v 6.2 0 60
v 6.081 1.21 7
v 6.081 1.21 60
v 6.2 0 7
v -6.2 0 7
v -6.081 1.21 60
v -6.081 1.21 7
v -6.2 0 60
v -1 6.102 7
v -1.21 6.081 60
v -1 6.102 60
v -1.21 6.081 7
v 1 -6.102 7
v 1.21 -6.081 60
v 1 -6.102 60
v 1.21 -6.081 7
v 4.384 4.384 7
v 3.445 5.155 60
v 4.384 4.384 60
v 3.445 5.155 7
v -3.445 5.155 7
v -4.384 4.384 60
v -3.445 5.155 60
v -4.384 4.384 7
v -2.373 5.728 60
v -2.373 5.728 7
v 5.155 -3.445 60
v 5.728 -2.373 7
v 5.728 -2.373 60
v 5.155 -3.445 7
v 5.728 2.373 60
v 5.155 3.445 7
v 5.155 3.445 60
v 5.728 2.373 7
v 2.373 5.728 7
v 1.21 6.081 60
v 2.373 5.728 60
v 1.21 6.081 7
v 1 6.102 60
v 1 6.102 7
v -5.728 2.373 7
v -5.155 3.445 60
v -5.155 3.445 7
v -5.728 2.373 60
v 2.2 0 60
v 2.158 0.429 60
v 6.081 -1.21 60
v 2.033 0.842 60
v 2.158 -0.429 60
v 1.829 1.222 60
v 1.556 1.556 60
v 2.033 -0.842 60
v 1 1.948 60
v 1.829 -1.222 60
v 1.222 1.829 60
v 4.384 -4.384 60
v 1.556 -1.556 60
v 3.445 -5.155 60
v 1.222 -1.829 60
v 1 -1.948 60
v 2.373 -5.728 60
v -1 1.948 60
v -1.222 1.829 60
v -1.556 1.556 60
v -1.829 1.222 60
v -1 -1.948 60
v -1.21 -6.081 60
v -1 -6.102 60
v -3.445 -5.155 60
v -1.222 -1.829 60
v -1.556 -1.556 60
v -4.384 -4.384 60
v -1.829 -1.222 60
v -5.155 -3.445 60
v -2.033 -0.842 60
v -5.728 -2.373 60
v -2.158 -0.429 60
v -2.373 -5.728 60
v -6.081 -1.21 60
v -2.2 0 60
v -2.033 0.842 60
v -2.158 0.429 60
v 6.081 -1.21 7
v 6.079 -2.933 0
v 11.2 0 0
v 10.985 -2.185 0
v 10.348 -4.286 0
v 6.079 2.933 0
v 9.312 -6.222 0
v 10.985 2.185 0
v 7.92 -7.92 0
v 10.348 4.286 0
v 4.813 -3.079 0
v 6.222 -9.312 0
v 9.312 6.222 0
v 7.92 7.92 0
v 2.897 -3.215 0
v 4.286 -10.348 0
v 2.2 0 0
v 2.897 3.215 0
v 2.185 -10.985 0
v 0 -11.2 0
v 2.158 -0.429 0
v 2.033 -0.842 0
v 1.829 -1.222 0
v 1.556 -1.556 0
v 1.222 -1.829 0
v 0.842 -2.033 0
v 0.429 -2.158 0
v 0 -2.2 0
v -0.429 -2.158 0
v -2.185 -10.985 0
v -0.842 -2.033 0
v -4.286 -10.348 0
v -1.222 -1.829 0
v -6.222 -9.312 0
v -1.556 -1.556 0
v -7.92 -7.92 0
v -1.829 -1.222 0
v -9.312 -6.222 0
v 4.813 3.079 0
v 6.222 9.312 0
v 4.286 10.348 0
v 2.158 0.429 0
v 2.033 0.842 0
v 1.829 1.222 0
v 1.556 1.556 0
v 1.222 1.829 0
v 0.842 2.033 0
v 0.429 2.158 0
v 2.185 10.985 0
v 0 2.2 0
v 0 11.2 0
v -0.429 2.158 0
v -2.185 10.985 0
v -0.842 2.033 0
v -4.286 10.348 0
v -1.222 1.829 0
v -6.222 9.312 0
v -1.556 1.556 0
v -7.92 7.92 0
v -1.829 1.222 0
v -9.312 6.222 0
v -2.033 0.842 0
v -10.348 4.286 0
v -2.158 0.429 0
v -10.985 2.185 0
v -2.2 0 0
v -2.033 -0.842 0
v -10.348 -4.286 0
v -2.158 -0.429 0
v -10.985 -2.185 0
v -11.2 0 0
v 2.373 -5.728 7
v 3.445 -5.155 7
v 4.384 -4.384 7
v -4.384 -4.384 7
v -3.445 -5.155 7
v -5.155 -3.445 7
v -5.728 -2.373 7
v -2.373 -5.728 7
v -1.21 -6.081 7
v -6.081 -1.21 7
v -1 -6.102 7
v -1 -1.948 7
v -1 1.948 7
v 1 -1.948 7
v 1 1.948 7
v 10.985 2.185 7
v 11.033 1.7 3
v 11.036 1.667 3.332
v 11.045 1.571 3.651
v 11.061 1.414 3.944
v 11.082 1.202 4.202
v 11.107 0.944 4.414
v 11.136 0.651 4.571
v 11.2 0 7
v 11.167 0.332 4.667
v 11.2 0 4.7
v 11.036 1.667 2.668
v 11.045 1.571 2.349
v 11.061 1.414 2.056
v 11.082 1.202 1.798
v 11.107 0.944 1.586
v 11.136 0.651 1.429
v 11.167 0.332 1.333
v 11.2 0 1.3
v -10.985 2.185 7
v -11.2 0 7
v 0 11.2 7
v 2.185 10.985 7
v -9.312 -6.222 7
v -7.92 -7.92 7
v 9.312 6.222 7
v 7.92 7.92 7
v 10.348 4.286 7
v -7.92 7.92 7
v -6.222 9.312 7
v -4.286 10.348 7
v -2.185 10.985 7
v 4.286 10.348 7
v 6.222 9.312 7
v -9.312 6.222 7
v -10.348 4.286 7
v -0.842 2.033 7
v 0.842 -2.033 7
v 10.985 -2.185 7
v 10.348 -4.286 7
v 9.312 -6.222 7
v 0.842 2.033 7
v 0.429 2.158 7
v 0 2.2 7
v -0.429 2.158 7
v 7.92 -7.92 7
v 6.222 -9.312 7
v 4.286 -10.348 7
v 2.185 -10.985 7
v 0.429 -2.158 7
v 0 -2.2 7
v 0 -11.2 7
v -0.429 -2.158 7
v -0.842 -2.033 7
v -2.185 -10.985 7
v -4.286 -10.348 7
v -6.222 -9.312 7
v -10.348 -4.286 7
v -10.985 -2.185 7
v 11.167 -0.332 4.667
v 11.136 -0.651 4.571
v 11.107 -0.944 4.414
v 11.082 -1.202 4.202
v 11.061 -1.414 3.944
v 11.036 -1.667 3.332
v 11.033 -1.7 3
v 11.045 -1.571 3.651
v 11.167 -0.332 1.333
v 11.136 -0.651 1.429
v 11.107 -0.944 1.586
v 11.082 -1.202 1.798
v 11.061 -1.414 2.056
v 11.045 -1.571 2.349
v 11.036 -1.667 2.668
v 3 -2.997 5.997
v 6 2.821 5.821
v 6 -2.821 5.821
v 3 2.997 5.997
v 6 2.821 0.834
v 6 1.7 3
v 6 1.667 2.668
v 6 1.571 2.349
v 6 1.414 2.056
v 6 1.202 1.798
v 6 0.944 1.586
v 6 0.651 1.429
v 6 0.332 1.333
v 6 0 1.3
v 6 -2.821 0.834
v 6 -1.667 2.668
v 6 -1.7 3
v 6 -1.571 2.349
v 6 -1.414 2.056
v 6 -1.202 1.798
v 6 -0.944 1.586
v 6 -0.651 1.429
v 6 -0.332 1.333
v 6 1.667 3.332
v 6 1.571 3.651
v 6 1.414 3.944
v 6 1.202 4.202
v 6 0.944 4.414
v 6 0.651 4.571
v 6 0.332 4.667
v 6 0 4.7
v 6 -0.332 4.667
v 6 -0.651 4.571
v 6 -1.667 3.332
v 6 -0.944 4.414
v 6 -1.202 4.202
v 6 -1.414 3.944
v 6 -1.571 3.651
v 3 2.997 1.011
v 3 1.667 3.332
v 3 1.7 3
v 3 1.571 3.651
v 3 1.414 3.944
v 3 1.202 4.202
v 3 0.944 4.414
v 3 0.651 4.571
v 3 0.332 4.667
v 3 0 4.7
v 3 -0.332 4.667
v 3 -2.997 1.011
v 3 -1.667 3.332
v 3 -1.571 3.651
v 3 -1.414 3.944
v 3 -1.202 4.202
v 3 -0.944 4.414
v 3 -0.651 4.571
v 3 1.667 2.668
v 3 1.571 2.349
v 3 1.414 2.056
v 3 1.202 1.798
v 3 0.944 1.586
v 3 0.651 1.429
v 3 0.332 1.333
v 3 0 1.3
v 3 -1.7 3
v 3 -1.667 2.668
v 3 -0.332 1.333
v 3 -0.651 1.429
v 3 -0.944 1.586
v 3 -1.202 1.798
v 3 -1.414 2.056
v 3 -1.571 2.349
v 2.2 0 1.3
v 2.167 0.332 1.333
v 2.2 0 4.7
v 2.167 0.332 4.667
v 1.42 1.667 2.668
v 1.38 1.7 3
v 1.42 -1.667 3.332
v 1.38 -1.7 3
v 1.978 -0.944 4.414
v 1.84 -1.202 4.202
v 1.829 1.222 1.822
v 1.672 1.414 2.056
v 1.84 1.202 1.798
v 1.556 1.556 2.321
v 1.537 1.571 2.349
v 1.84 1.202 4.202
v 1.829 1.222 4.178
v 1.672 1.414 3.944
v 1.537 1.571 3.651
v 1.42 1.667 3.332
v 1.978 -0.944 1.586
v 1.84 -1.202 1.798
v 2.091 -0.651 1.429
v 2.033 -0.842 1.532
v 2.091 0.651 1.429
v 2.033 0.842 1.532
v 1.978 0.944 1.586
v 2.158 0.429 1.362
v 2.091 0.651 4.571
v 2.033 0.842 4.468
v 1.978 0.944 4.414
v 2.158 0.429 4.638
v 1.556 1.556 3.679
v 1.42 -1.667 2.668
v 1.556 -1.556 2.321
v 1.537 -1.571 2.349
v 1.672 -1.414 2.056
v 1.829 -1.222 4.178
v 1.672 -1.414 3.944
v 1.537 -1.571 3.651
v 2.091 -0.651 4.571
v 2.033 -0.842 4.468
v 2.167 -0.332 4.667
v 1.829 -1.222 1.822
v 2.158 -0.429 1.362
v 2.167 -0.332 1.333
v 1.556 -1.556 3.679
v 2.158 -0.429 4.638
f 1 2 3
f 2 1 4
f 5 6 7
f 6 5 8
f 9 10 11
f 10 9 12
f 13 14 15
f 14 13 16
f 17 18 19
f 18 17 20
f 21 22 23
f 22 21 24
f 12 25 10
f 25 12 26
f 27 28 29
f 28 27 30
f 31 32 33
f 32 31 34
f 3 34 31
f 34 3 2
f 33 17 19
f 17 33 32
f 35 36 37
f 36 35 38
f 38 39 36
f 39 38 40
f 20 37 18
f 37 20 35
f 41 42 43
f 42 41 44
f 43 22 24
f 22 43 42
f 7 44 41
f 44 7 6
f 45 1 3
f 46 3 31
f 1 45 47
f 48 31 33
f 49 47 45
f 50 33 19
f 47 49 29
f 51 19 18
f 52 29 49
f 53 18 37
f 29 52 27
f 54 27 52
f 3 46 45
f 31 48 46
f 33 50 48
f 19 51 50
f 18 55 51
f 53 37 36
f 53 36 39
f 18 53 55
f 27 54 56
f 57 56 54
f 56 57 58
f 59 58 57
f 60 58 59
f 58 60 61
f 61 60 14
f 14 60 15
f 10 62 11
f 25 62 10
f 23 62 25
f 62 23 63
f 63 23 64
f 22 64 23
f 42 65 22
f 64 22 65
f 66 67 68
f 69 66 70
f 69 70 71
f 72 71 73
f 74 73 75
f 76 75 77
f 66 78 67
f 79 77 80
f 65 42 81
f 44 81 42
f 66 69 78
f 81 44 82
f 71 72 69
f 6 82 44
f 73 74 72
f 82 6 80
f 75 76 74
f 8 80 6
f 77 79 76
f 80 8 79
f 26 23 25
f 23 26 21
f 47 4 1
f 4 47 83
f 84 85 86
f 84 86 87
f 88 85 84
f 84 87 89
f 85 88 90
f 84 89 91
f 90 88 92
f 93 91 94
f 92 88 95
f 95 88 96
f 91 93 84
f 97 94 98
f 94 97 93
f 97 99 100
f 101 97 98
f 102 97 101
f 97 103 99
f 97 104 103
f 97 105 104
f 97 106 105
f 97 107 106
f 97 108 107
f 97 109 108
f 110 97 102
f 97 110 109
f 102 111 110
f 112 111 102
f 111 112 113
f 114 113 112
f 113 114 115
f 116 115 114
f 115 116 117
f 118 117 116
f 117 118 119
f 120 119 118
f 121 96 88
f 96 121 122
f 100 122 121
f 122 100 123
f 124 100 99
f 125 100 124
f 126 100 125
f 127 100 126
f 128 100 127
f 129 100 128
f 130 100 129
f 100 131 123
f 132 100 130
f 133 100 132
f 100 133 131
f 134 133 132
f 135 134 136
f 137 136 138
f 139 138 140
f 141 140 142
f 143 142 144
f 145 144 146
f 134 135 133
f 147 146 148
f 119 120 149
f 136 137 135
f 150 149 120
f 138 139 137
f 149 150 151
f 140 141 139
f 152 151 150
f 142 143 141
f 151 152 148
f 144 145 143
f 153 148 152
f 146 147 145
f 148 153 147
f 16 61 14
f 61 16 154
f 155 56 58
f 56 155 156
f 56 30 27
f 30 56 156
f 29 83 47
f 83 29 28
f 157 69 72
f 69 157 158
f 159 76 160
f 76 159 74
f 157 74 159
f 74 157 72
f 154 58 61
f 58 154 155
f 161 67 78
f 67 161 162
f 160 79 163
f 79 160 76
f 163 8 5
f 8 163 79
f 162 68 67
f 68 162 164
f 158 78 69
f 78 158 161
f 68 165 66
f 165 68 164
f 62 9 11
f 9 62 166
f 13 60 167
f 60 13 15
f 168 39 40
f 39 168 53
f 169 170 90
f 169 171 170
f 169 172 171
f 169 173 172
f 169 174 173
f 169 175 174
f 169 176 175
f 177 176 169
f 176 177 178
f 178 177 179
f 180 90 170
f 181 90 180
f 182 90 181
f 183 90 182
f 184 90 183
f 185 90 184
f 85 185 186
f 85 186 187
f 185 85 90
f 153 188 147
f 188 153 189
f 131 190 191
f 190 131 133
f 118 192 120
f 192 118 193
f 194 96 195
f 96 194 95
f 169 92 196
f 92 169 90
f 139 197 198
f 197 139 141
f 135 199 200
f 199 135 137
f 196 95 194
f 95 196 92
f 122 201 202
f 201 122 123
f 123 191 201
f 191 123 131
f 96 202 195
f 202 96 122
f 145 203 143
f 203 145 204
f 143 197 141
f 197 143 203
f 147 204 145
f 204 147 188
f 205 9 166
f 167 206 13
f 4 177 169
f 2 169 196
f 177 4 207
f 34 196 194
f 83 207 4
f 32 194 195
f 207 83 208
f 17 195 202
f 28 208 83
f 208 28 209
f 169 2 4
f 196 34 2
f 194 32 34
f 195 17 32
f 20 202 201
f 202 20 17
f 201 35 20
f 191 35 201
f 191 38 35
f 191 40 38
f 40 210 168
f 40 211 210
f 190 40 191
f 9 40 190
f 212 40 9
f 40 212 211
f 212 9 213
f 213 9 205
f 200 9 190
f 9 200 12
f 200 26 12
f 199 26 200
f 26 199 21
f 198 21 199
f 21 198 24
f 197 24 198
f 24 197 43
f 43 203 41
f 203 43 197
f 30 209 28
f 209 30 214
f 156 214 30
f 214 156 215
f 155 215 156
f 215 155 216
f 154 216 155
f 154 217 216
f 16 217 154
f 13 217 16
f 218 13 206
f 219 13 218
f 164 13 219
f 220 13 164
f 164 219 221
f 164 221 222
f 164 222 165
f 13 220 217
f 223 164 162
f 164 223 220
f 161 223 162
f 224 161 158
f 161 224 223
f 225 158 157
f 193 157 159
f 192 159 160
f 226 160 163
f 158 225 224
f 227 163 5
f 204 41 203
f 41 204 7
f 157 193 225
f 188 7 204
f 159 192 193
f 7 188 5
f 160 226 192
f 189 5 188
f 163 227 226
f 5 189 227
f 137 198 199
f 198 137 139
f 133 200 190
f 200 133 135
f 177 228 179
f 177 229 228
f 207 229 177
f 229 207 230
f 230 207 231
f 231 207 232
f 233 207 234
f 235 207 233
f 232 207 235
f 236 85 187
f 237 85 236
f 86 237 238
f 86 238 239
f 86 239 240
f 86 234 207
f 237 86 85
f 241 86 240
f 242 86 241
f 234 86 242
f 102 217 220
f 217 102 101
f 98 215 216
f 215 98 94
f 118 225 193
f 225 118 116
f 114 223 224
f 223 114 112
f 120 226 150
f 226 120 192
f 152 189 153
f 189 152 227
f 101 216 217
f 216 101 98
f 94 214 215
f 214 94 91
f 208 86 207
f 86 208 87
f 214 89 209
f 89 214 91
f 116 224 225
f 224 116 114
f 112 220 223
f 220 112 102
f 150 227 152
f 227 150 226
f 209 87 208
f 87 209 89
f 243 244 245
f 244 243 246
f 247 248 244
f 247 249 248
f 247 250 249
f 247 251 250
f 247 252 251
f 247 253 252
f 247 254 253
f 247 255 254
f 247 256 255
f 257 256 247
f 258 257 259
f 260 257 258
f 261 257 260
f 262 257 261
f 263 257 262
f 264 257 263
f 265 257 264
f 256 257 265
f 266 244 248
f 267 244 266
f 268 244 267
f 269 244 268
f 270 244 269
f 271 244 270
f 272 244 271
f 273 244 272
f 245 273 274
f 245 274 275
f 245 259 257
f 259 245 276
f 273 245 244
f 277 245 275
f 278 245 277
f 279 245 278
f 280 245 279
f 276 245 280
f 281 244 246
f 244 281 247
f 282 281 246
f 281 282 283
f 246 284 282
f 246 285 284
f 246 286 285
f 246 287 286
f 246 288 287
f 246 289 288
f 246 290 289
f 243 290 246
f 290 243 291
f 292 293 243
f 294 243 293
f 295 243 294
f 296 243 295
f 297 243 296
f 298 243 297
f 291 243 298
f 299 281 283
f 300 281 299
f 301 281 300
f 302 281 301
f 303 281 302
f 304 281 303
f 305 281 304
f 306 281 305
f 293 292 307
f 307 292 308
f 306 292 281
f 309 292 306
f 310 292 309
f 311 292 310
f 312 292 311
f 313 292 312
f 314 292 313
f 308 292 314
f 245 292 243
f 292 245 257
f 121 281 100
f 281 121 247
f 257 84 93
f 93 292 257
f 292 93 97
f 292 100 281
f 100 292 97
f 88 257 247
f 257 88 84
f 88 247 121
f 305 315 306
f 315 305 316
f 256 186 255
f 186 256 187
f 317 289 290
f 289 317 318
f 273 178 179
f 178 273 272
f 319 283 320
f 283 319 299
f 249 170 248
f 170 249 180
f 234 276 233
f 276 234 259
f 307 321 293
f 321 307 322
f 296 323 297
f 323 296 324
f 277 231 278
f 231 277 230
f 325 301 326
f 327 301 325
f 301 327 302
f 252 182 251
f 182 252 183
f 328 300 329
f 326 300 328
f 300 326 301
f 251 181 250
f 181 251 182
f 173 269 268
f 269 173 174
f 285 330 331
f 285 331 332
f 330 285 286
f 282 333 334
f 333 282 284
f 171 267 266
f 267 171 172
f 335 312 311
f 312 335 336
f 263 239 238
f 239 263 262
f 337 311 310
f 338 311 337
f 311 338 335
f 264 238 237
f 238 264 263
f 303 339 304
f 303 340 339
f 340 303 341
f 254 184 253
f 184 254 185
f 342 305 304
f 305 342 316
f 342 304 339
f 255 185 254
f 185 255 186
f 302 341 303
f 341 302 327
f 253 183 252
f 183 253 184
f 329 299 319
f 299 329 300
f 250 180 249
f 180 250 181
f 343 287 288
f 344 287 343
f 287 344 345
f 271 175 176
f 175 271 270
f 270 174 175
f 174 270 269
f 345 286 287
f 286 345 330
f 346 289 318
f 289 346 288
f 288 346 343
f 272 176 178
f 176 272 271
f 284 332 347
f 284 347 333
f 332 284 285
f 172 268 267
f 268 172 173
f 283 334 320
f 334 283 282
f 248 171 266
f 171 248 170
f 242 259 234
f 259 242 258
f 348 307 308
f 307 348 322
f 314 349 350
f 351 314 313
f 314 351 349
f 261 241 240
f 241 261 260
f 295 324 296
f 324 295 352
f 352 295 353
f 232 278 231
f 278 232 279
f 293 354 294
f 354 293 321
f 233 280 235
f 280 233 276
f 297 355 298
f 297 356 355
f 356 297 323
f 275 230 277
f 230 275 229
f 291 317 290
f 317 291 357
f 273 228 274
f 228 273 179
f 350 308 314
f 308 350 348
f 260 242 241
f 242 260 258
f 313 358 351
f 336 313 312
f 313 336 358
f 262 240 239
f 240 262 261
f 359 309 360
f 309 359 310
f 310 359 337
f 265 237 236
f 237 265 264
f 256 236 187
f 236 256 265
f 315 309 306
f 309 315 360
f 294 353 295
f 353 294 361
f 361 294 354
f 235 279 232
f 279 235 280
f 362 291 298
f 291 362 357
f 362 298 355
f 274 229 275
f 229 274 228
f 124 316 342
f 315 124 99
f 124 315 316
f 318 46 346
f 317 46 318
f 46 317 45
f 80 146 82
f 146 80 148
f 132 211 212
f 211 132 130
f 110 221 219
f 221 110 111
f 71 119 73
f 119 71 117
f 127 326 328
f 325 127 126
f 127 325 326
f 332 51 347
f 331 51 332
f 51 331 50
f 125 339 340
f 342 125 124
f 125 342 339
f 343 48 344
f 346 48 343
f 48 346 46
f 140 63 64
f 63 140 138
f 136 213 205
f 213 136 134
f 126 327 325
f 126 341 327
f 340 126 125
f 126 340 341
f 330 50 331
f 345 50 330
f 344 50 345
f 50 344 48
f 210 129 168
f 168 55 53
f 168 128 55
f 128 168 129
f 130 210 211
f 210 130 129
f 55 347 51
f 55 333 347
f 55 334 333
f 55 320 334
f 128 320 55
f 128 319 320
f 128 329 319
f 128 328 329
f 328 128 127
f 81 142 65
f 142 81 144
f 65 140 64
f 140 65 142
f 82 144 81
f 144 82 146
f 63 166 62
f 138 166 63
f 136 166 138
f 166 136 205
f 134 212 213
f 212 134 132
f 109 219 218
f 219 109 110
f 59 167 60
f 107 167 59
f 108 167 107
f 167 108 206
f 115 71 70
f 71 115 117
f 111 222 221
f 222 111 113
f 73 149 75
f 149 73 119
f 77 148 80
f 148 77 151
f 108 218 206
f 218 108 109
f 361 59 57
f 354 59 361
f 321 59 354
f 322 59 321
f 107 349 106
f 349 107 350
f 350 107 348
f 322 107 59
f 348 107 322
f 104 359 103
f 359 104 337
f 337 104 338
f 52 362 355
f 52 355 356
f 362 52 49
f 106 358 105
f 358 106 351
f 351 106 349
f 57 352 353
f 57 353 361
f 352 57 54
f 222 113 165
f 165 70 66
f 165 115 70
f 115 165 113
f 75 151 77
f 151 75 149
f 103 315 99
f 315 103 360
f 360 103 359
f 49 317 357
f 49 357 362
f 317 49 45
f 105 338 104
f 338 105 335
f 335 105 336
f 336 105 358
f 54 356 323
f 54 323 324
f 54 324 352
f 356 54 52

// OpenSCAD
/* I've got motors with a 4mm shaft, and wheels with a 12mm hole.
 *
 * The motors have flats, so I figure screw onto those, so nut trap.  Then friction fit the wheels?
  * Should probably have a shoulder, 
 */

motor_adapter();

slop = .2;

$fn=32;

module motor_adapter(hub_rad = 6.2, hub_height=60, shaft_rad = 2, shaft_height=10){
    shoulder = 5;
    shoulder_height = 7;
    m3_sq_nut_rad = 5.5/2*sqrt(2)+.1;
    m3_rad = 3/2+slop;
    
    m5_thread_rad = 5/2-.5;
    
    difference(){
        union(){
            //shoulder
            cylinder(r=hub_rad+shoulder, h=shoulder_height);
            
            //wheel hub
            difference(){
                cylinder(r=hub_rad, h=hub_height);
                //split for friction mount
                cube([2, 30, 200], center=true);
                translate([0,0,shaft_height]) cylinder(r=m5_thread_rad, h=hub_height);
            }
        }
        
        //shaft holw
        translate([0,0,-.1]) cylinder(r=shaft_rad+slop, h=hub_height*2);
        
        //set screw mounting
        translate([0,0,shoulder_height/2-.5]) rotate([0,90,0]) {
            translate([0,0,3]) rotate([0,0,45]) cylinder(r1=m3_sq_nut_rad+.25, r2=m3_sq_nut_rad, h=3, $fn=4);
            
            hull(){
                translate([m3_sq_nut_rad*1.25,0,3]) rotate([0,0,45]) cylinder(r1=m3_sq_nut_rad+.25, r2=m3_sq_nut_rad, h=3, $fn=4);
                translate([m3_sq_nut_rad*2,0,3-.25]) rotate([0,0,45]) cylinder(r1=m3_sq_nut_rad+1, r2=m3_sq_nut_rad+.5, h=3.5, $fn=4);
            }
            
            cylinder(r=m3_rad,  h=shoulder*3);
        }
        
        
    }
}
